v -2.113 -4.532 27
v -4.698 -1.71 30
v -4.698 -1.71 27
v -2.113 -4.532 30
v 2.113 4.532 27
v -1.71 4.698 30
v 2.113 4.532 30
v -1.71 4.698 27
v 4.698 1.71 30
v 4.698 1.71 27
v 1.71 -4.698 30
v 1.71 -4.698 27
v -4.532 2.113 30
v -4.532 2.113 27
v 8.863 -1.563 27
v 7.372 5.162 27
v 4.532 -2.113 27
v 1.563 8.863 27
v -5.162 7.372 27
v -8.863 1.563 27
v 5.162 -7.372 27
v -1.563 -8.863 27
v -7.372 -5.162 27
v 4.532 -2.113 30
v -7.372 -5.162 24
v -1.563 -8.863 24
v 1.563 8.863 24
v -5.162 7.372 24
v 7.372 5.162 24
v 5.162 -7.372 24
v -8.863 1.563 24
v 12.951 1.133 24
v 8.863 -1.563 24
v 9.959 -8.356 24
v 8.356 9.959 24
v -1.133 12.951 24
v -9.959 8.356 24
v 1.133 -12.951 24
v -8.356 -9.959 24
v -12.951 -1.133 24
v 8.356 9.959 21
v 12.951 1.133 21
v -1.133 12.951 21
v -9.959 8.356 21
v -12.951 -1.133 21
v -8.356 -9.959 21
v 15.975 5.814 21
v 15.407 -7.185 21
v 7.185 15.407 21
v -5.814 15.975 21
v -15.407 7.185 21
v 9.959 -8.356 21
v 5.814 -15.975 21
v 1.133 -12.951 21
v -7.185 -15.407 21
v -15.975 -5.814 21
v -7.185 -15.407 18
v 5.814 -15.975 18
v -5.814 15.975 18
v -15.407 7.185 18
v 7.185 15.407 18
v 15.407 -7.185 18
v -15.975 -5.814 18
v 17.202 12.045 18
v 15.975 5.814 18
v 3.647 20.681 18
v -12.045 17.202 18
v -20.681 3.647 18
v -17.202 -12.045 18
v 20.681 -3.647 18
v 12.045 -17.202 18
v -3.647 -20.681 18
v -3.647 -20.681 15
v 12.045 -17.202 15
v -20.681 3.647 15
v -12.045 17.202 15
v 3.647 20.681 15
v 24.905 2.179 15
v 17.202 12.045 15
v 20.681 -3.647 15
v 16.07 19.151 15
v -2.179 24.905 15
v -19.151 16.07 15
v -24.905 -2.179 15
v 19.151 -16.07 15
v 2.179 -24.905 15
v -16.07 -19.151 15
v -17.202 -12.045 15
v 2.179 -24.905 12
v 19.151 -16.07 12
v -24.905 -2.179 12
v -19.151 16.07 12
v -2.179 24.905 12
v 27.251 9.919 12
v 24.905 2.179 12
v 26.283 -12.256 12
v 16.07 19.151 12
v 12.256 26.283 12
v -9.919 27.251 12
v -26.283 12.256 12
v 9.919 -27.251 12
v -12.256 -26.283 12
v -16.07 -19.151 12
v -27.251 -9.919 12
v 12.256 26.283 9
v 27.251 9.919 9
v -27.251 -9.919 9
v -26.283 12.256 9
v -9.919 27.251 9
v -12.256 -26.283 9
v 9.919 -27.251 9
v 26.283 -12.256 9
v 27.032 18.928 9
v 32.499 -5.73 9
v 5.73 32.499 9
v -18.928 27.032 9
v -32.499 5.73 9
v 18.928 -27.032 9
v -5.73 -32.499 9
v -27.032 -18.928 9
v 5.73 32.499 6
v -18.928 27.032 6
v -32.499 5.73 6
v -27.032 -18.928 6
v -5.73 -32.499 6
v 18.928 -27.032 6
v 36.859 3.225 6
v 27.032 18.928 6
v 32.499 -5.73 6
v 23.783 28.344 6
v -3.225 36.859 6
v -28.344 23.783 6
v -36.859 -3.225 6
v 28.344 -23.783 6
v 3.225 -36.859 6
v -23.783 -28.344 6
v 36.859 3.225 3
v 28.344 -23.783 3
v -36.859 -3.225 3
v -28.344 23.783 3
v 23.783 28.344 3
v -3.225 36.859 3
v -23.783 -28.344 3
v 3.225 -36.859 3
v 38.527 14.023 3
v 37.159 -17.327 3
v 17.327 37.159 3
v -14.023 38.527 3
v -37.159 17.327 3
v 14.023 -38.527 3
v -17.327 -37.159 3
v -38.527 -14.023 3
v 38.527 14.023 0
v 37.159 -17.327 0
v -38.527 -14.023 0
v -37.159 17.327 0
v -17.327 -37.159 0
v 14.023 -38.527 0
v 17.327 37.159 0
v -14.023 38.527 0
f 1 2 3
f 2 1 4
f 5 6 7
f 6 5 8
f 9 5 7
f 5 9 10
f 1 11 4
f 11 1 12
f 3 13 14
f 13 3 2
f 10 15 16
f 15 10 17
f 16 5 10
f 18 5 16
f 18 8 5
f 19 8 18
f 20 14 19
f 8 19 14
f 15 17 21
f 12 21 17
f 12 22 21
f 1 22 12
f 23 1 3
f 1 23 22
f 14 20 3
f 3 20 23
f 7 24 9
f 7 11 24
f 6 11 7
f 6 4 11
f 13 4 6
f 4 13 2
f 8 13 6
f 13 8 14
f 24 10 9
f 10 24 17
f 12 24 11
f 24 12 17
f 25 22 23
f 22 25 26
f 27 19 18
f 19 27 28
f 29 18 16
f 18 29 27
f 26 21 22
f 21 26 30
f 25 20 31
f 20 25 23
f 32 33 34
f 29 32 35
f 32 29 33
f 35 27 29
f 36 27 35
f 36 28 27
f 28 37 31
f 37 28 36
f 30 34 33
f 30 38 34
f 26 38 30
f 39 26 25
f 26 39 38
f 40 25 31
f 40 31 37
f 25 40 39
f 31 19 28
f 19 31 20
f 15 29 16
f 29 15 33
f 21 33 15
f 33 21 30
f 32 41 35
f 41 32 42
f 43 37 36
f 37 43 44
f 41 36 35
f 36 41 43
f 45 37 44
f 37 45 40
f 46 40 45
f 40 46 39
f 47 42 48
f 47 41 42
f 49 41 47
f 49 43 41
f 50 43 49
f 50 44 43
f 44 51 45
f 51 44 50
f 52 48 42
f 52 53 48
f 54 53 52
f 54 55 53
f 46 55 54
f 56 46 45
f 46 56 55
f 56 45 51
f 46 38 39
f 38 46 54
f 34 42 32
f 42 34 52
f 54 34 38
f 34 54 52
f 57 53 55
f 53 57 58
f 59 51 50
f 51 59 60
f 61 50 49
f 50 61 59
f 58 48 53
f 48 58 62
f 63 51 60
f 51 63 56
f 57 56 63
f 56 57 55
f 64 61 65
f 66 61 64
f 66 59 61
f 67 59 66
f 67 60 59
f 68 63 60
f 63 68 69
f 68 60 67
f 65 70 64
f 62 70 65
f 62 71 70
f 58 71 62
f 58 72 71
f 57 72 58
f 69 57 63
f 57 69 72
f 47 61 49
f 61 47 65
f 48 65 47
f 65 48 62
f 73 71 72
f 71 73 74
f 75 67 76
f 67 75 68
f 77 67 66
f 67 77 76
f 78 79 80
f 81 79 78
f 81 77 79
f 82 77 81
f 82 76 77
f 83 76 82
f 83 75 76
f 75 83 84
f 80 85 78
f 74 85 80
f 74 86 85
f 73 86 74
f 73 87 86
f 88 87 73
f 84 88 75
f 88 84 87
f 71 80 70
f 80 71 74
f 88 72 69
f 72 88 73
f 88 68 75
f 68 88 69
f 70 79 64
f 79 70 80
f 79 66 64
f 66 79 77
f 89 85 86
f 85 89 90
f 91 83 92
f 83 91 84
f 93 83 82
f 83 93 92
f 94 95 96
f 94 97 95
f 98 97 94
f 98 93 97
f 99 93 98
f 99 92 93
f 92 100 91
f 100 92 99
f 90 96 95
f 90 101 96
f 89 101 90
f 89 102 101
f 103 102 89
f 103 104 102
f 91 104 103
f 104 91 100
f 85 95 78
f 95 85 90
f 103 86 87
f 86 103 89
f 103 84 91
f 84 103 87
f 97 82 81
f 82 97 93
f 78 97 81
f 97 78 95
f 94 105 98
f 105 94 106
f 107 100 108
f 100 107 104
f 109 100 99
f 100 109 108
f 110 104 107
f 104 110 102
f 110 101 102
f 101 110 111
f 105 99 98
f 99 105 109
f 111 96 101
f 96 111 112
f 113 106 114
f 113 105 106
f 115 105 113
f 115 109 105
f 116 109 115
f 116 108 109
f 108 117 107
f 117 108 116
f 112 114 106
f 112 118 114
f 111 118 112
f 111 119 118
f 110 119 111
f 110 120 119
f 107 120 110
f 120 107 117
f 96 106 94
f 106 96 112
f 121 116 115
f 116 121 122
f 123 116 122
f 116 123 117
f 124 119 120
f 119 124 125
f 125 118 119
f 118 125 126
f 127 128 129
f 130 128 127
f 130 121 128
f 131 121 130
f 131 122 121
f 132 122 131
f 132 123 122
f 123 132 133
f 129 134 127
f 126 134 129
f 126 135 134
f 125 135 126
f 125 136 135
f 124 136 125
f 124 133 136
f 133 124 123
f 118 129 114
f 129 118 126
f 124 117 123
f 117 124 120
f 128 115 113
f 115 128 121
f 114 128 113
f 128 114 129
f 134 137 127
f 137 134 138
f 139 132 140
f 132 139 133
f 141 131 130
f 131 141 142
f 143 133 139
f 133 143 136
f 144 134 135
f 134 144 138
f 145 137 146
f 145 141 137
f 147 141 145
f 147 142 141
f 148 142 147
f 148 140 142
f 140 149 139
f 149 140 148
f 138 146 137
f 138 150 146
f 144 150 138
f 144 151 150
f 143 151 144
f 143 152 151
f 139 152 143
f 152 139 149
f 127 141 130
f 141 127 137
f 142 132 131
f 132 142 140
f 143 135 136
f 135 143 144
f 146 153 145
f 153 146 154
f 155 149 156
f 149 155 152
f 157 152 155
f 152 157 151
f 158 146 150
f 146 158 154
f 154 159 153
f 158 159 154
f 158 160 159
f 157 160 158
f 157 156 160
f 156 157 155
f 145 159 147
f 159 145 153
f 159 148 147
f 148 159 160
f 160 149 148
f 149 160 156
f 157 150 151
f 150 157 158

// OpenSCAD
//$fa = 1;
//$fs = 0.4;

for ( x= [1:1:10] ) {

    color(c = rands(0,255,3)/255 )
    translate([0,0,30-3*x])
    rotate([0,0,x*15+5])
    cylinder(h=rands(3,3,1)[0],r =4*x+1, center=!true, $fn=rands(8,9,1)[0]);
}
